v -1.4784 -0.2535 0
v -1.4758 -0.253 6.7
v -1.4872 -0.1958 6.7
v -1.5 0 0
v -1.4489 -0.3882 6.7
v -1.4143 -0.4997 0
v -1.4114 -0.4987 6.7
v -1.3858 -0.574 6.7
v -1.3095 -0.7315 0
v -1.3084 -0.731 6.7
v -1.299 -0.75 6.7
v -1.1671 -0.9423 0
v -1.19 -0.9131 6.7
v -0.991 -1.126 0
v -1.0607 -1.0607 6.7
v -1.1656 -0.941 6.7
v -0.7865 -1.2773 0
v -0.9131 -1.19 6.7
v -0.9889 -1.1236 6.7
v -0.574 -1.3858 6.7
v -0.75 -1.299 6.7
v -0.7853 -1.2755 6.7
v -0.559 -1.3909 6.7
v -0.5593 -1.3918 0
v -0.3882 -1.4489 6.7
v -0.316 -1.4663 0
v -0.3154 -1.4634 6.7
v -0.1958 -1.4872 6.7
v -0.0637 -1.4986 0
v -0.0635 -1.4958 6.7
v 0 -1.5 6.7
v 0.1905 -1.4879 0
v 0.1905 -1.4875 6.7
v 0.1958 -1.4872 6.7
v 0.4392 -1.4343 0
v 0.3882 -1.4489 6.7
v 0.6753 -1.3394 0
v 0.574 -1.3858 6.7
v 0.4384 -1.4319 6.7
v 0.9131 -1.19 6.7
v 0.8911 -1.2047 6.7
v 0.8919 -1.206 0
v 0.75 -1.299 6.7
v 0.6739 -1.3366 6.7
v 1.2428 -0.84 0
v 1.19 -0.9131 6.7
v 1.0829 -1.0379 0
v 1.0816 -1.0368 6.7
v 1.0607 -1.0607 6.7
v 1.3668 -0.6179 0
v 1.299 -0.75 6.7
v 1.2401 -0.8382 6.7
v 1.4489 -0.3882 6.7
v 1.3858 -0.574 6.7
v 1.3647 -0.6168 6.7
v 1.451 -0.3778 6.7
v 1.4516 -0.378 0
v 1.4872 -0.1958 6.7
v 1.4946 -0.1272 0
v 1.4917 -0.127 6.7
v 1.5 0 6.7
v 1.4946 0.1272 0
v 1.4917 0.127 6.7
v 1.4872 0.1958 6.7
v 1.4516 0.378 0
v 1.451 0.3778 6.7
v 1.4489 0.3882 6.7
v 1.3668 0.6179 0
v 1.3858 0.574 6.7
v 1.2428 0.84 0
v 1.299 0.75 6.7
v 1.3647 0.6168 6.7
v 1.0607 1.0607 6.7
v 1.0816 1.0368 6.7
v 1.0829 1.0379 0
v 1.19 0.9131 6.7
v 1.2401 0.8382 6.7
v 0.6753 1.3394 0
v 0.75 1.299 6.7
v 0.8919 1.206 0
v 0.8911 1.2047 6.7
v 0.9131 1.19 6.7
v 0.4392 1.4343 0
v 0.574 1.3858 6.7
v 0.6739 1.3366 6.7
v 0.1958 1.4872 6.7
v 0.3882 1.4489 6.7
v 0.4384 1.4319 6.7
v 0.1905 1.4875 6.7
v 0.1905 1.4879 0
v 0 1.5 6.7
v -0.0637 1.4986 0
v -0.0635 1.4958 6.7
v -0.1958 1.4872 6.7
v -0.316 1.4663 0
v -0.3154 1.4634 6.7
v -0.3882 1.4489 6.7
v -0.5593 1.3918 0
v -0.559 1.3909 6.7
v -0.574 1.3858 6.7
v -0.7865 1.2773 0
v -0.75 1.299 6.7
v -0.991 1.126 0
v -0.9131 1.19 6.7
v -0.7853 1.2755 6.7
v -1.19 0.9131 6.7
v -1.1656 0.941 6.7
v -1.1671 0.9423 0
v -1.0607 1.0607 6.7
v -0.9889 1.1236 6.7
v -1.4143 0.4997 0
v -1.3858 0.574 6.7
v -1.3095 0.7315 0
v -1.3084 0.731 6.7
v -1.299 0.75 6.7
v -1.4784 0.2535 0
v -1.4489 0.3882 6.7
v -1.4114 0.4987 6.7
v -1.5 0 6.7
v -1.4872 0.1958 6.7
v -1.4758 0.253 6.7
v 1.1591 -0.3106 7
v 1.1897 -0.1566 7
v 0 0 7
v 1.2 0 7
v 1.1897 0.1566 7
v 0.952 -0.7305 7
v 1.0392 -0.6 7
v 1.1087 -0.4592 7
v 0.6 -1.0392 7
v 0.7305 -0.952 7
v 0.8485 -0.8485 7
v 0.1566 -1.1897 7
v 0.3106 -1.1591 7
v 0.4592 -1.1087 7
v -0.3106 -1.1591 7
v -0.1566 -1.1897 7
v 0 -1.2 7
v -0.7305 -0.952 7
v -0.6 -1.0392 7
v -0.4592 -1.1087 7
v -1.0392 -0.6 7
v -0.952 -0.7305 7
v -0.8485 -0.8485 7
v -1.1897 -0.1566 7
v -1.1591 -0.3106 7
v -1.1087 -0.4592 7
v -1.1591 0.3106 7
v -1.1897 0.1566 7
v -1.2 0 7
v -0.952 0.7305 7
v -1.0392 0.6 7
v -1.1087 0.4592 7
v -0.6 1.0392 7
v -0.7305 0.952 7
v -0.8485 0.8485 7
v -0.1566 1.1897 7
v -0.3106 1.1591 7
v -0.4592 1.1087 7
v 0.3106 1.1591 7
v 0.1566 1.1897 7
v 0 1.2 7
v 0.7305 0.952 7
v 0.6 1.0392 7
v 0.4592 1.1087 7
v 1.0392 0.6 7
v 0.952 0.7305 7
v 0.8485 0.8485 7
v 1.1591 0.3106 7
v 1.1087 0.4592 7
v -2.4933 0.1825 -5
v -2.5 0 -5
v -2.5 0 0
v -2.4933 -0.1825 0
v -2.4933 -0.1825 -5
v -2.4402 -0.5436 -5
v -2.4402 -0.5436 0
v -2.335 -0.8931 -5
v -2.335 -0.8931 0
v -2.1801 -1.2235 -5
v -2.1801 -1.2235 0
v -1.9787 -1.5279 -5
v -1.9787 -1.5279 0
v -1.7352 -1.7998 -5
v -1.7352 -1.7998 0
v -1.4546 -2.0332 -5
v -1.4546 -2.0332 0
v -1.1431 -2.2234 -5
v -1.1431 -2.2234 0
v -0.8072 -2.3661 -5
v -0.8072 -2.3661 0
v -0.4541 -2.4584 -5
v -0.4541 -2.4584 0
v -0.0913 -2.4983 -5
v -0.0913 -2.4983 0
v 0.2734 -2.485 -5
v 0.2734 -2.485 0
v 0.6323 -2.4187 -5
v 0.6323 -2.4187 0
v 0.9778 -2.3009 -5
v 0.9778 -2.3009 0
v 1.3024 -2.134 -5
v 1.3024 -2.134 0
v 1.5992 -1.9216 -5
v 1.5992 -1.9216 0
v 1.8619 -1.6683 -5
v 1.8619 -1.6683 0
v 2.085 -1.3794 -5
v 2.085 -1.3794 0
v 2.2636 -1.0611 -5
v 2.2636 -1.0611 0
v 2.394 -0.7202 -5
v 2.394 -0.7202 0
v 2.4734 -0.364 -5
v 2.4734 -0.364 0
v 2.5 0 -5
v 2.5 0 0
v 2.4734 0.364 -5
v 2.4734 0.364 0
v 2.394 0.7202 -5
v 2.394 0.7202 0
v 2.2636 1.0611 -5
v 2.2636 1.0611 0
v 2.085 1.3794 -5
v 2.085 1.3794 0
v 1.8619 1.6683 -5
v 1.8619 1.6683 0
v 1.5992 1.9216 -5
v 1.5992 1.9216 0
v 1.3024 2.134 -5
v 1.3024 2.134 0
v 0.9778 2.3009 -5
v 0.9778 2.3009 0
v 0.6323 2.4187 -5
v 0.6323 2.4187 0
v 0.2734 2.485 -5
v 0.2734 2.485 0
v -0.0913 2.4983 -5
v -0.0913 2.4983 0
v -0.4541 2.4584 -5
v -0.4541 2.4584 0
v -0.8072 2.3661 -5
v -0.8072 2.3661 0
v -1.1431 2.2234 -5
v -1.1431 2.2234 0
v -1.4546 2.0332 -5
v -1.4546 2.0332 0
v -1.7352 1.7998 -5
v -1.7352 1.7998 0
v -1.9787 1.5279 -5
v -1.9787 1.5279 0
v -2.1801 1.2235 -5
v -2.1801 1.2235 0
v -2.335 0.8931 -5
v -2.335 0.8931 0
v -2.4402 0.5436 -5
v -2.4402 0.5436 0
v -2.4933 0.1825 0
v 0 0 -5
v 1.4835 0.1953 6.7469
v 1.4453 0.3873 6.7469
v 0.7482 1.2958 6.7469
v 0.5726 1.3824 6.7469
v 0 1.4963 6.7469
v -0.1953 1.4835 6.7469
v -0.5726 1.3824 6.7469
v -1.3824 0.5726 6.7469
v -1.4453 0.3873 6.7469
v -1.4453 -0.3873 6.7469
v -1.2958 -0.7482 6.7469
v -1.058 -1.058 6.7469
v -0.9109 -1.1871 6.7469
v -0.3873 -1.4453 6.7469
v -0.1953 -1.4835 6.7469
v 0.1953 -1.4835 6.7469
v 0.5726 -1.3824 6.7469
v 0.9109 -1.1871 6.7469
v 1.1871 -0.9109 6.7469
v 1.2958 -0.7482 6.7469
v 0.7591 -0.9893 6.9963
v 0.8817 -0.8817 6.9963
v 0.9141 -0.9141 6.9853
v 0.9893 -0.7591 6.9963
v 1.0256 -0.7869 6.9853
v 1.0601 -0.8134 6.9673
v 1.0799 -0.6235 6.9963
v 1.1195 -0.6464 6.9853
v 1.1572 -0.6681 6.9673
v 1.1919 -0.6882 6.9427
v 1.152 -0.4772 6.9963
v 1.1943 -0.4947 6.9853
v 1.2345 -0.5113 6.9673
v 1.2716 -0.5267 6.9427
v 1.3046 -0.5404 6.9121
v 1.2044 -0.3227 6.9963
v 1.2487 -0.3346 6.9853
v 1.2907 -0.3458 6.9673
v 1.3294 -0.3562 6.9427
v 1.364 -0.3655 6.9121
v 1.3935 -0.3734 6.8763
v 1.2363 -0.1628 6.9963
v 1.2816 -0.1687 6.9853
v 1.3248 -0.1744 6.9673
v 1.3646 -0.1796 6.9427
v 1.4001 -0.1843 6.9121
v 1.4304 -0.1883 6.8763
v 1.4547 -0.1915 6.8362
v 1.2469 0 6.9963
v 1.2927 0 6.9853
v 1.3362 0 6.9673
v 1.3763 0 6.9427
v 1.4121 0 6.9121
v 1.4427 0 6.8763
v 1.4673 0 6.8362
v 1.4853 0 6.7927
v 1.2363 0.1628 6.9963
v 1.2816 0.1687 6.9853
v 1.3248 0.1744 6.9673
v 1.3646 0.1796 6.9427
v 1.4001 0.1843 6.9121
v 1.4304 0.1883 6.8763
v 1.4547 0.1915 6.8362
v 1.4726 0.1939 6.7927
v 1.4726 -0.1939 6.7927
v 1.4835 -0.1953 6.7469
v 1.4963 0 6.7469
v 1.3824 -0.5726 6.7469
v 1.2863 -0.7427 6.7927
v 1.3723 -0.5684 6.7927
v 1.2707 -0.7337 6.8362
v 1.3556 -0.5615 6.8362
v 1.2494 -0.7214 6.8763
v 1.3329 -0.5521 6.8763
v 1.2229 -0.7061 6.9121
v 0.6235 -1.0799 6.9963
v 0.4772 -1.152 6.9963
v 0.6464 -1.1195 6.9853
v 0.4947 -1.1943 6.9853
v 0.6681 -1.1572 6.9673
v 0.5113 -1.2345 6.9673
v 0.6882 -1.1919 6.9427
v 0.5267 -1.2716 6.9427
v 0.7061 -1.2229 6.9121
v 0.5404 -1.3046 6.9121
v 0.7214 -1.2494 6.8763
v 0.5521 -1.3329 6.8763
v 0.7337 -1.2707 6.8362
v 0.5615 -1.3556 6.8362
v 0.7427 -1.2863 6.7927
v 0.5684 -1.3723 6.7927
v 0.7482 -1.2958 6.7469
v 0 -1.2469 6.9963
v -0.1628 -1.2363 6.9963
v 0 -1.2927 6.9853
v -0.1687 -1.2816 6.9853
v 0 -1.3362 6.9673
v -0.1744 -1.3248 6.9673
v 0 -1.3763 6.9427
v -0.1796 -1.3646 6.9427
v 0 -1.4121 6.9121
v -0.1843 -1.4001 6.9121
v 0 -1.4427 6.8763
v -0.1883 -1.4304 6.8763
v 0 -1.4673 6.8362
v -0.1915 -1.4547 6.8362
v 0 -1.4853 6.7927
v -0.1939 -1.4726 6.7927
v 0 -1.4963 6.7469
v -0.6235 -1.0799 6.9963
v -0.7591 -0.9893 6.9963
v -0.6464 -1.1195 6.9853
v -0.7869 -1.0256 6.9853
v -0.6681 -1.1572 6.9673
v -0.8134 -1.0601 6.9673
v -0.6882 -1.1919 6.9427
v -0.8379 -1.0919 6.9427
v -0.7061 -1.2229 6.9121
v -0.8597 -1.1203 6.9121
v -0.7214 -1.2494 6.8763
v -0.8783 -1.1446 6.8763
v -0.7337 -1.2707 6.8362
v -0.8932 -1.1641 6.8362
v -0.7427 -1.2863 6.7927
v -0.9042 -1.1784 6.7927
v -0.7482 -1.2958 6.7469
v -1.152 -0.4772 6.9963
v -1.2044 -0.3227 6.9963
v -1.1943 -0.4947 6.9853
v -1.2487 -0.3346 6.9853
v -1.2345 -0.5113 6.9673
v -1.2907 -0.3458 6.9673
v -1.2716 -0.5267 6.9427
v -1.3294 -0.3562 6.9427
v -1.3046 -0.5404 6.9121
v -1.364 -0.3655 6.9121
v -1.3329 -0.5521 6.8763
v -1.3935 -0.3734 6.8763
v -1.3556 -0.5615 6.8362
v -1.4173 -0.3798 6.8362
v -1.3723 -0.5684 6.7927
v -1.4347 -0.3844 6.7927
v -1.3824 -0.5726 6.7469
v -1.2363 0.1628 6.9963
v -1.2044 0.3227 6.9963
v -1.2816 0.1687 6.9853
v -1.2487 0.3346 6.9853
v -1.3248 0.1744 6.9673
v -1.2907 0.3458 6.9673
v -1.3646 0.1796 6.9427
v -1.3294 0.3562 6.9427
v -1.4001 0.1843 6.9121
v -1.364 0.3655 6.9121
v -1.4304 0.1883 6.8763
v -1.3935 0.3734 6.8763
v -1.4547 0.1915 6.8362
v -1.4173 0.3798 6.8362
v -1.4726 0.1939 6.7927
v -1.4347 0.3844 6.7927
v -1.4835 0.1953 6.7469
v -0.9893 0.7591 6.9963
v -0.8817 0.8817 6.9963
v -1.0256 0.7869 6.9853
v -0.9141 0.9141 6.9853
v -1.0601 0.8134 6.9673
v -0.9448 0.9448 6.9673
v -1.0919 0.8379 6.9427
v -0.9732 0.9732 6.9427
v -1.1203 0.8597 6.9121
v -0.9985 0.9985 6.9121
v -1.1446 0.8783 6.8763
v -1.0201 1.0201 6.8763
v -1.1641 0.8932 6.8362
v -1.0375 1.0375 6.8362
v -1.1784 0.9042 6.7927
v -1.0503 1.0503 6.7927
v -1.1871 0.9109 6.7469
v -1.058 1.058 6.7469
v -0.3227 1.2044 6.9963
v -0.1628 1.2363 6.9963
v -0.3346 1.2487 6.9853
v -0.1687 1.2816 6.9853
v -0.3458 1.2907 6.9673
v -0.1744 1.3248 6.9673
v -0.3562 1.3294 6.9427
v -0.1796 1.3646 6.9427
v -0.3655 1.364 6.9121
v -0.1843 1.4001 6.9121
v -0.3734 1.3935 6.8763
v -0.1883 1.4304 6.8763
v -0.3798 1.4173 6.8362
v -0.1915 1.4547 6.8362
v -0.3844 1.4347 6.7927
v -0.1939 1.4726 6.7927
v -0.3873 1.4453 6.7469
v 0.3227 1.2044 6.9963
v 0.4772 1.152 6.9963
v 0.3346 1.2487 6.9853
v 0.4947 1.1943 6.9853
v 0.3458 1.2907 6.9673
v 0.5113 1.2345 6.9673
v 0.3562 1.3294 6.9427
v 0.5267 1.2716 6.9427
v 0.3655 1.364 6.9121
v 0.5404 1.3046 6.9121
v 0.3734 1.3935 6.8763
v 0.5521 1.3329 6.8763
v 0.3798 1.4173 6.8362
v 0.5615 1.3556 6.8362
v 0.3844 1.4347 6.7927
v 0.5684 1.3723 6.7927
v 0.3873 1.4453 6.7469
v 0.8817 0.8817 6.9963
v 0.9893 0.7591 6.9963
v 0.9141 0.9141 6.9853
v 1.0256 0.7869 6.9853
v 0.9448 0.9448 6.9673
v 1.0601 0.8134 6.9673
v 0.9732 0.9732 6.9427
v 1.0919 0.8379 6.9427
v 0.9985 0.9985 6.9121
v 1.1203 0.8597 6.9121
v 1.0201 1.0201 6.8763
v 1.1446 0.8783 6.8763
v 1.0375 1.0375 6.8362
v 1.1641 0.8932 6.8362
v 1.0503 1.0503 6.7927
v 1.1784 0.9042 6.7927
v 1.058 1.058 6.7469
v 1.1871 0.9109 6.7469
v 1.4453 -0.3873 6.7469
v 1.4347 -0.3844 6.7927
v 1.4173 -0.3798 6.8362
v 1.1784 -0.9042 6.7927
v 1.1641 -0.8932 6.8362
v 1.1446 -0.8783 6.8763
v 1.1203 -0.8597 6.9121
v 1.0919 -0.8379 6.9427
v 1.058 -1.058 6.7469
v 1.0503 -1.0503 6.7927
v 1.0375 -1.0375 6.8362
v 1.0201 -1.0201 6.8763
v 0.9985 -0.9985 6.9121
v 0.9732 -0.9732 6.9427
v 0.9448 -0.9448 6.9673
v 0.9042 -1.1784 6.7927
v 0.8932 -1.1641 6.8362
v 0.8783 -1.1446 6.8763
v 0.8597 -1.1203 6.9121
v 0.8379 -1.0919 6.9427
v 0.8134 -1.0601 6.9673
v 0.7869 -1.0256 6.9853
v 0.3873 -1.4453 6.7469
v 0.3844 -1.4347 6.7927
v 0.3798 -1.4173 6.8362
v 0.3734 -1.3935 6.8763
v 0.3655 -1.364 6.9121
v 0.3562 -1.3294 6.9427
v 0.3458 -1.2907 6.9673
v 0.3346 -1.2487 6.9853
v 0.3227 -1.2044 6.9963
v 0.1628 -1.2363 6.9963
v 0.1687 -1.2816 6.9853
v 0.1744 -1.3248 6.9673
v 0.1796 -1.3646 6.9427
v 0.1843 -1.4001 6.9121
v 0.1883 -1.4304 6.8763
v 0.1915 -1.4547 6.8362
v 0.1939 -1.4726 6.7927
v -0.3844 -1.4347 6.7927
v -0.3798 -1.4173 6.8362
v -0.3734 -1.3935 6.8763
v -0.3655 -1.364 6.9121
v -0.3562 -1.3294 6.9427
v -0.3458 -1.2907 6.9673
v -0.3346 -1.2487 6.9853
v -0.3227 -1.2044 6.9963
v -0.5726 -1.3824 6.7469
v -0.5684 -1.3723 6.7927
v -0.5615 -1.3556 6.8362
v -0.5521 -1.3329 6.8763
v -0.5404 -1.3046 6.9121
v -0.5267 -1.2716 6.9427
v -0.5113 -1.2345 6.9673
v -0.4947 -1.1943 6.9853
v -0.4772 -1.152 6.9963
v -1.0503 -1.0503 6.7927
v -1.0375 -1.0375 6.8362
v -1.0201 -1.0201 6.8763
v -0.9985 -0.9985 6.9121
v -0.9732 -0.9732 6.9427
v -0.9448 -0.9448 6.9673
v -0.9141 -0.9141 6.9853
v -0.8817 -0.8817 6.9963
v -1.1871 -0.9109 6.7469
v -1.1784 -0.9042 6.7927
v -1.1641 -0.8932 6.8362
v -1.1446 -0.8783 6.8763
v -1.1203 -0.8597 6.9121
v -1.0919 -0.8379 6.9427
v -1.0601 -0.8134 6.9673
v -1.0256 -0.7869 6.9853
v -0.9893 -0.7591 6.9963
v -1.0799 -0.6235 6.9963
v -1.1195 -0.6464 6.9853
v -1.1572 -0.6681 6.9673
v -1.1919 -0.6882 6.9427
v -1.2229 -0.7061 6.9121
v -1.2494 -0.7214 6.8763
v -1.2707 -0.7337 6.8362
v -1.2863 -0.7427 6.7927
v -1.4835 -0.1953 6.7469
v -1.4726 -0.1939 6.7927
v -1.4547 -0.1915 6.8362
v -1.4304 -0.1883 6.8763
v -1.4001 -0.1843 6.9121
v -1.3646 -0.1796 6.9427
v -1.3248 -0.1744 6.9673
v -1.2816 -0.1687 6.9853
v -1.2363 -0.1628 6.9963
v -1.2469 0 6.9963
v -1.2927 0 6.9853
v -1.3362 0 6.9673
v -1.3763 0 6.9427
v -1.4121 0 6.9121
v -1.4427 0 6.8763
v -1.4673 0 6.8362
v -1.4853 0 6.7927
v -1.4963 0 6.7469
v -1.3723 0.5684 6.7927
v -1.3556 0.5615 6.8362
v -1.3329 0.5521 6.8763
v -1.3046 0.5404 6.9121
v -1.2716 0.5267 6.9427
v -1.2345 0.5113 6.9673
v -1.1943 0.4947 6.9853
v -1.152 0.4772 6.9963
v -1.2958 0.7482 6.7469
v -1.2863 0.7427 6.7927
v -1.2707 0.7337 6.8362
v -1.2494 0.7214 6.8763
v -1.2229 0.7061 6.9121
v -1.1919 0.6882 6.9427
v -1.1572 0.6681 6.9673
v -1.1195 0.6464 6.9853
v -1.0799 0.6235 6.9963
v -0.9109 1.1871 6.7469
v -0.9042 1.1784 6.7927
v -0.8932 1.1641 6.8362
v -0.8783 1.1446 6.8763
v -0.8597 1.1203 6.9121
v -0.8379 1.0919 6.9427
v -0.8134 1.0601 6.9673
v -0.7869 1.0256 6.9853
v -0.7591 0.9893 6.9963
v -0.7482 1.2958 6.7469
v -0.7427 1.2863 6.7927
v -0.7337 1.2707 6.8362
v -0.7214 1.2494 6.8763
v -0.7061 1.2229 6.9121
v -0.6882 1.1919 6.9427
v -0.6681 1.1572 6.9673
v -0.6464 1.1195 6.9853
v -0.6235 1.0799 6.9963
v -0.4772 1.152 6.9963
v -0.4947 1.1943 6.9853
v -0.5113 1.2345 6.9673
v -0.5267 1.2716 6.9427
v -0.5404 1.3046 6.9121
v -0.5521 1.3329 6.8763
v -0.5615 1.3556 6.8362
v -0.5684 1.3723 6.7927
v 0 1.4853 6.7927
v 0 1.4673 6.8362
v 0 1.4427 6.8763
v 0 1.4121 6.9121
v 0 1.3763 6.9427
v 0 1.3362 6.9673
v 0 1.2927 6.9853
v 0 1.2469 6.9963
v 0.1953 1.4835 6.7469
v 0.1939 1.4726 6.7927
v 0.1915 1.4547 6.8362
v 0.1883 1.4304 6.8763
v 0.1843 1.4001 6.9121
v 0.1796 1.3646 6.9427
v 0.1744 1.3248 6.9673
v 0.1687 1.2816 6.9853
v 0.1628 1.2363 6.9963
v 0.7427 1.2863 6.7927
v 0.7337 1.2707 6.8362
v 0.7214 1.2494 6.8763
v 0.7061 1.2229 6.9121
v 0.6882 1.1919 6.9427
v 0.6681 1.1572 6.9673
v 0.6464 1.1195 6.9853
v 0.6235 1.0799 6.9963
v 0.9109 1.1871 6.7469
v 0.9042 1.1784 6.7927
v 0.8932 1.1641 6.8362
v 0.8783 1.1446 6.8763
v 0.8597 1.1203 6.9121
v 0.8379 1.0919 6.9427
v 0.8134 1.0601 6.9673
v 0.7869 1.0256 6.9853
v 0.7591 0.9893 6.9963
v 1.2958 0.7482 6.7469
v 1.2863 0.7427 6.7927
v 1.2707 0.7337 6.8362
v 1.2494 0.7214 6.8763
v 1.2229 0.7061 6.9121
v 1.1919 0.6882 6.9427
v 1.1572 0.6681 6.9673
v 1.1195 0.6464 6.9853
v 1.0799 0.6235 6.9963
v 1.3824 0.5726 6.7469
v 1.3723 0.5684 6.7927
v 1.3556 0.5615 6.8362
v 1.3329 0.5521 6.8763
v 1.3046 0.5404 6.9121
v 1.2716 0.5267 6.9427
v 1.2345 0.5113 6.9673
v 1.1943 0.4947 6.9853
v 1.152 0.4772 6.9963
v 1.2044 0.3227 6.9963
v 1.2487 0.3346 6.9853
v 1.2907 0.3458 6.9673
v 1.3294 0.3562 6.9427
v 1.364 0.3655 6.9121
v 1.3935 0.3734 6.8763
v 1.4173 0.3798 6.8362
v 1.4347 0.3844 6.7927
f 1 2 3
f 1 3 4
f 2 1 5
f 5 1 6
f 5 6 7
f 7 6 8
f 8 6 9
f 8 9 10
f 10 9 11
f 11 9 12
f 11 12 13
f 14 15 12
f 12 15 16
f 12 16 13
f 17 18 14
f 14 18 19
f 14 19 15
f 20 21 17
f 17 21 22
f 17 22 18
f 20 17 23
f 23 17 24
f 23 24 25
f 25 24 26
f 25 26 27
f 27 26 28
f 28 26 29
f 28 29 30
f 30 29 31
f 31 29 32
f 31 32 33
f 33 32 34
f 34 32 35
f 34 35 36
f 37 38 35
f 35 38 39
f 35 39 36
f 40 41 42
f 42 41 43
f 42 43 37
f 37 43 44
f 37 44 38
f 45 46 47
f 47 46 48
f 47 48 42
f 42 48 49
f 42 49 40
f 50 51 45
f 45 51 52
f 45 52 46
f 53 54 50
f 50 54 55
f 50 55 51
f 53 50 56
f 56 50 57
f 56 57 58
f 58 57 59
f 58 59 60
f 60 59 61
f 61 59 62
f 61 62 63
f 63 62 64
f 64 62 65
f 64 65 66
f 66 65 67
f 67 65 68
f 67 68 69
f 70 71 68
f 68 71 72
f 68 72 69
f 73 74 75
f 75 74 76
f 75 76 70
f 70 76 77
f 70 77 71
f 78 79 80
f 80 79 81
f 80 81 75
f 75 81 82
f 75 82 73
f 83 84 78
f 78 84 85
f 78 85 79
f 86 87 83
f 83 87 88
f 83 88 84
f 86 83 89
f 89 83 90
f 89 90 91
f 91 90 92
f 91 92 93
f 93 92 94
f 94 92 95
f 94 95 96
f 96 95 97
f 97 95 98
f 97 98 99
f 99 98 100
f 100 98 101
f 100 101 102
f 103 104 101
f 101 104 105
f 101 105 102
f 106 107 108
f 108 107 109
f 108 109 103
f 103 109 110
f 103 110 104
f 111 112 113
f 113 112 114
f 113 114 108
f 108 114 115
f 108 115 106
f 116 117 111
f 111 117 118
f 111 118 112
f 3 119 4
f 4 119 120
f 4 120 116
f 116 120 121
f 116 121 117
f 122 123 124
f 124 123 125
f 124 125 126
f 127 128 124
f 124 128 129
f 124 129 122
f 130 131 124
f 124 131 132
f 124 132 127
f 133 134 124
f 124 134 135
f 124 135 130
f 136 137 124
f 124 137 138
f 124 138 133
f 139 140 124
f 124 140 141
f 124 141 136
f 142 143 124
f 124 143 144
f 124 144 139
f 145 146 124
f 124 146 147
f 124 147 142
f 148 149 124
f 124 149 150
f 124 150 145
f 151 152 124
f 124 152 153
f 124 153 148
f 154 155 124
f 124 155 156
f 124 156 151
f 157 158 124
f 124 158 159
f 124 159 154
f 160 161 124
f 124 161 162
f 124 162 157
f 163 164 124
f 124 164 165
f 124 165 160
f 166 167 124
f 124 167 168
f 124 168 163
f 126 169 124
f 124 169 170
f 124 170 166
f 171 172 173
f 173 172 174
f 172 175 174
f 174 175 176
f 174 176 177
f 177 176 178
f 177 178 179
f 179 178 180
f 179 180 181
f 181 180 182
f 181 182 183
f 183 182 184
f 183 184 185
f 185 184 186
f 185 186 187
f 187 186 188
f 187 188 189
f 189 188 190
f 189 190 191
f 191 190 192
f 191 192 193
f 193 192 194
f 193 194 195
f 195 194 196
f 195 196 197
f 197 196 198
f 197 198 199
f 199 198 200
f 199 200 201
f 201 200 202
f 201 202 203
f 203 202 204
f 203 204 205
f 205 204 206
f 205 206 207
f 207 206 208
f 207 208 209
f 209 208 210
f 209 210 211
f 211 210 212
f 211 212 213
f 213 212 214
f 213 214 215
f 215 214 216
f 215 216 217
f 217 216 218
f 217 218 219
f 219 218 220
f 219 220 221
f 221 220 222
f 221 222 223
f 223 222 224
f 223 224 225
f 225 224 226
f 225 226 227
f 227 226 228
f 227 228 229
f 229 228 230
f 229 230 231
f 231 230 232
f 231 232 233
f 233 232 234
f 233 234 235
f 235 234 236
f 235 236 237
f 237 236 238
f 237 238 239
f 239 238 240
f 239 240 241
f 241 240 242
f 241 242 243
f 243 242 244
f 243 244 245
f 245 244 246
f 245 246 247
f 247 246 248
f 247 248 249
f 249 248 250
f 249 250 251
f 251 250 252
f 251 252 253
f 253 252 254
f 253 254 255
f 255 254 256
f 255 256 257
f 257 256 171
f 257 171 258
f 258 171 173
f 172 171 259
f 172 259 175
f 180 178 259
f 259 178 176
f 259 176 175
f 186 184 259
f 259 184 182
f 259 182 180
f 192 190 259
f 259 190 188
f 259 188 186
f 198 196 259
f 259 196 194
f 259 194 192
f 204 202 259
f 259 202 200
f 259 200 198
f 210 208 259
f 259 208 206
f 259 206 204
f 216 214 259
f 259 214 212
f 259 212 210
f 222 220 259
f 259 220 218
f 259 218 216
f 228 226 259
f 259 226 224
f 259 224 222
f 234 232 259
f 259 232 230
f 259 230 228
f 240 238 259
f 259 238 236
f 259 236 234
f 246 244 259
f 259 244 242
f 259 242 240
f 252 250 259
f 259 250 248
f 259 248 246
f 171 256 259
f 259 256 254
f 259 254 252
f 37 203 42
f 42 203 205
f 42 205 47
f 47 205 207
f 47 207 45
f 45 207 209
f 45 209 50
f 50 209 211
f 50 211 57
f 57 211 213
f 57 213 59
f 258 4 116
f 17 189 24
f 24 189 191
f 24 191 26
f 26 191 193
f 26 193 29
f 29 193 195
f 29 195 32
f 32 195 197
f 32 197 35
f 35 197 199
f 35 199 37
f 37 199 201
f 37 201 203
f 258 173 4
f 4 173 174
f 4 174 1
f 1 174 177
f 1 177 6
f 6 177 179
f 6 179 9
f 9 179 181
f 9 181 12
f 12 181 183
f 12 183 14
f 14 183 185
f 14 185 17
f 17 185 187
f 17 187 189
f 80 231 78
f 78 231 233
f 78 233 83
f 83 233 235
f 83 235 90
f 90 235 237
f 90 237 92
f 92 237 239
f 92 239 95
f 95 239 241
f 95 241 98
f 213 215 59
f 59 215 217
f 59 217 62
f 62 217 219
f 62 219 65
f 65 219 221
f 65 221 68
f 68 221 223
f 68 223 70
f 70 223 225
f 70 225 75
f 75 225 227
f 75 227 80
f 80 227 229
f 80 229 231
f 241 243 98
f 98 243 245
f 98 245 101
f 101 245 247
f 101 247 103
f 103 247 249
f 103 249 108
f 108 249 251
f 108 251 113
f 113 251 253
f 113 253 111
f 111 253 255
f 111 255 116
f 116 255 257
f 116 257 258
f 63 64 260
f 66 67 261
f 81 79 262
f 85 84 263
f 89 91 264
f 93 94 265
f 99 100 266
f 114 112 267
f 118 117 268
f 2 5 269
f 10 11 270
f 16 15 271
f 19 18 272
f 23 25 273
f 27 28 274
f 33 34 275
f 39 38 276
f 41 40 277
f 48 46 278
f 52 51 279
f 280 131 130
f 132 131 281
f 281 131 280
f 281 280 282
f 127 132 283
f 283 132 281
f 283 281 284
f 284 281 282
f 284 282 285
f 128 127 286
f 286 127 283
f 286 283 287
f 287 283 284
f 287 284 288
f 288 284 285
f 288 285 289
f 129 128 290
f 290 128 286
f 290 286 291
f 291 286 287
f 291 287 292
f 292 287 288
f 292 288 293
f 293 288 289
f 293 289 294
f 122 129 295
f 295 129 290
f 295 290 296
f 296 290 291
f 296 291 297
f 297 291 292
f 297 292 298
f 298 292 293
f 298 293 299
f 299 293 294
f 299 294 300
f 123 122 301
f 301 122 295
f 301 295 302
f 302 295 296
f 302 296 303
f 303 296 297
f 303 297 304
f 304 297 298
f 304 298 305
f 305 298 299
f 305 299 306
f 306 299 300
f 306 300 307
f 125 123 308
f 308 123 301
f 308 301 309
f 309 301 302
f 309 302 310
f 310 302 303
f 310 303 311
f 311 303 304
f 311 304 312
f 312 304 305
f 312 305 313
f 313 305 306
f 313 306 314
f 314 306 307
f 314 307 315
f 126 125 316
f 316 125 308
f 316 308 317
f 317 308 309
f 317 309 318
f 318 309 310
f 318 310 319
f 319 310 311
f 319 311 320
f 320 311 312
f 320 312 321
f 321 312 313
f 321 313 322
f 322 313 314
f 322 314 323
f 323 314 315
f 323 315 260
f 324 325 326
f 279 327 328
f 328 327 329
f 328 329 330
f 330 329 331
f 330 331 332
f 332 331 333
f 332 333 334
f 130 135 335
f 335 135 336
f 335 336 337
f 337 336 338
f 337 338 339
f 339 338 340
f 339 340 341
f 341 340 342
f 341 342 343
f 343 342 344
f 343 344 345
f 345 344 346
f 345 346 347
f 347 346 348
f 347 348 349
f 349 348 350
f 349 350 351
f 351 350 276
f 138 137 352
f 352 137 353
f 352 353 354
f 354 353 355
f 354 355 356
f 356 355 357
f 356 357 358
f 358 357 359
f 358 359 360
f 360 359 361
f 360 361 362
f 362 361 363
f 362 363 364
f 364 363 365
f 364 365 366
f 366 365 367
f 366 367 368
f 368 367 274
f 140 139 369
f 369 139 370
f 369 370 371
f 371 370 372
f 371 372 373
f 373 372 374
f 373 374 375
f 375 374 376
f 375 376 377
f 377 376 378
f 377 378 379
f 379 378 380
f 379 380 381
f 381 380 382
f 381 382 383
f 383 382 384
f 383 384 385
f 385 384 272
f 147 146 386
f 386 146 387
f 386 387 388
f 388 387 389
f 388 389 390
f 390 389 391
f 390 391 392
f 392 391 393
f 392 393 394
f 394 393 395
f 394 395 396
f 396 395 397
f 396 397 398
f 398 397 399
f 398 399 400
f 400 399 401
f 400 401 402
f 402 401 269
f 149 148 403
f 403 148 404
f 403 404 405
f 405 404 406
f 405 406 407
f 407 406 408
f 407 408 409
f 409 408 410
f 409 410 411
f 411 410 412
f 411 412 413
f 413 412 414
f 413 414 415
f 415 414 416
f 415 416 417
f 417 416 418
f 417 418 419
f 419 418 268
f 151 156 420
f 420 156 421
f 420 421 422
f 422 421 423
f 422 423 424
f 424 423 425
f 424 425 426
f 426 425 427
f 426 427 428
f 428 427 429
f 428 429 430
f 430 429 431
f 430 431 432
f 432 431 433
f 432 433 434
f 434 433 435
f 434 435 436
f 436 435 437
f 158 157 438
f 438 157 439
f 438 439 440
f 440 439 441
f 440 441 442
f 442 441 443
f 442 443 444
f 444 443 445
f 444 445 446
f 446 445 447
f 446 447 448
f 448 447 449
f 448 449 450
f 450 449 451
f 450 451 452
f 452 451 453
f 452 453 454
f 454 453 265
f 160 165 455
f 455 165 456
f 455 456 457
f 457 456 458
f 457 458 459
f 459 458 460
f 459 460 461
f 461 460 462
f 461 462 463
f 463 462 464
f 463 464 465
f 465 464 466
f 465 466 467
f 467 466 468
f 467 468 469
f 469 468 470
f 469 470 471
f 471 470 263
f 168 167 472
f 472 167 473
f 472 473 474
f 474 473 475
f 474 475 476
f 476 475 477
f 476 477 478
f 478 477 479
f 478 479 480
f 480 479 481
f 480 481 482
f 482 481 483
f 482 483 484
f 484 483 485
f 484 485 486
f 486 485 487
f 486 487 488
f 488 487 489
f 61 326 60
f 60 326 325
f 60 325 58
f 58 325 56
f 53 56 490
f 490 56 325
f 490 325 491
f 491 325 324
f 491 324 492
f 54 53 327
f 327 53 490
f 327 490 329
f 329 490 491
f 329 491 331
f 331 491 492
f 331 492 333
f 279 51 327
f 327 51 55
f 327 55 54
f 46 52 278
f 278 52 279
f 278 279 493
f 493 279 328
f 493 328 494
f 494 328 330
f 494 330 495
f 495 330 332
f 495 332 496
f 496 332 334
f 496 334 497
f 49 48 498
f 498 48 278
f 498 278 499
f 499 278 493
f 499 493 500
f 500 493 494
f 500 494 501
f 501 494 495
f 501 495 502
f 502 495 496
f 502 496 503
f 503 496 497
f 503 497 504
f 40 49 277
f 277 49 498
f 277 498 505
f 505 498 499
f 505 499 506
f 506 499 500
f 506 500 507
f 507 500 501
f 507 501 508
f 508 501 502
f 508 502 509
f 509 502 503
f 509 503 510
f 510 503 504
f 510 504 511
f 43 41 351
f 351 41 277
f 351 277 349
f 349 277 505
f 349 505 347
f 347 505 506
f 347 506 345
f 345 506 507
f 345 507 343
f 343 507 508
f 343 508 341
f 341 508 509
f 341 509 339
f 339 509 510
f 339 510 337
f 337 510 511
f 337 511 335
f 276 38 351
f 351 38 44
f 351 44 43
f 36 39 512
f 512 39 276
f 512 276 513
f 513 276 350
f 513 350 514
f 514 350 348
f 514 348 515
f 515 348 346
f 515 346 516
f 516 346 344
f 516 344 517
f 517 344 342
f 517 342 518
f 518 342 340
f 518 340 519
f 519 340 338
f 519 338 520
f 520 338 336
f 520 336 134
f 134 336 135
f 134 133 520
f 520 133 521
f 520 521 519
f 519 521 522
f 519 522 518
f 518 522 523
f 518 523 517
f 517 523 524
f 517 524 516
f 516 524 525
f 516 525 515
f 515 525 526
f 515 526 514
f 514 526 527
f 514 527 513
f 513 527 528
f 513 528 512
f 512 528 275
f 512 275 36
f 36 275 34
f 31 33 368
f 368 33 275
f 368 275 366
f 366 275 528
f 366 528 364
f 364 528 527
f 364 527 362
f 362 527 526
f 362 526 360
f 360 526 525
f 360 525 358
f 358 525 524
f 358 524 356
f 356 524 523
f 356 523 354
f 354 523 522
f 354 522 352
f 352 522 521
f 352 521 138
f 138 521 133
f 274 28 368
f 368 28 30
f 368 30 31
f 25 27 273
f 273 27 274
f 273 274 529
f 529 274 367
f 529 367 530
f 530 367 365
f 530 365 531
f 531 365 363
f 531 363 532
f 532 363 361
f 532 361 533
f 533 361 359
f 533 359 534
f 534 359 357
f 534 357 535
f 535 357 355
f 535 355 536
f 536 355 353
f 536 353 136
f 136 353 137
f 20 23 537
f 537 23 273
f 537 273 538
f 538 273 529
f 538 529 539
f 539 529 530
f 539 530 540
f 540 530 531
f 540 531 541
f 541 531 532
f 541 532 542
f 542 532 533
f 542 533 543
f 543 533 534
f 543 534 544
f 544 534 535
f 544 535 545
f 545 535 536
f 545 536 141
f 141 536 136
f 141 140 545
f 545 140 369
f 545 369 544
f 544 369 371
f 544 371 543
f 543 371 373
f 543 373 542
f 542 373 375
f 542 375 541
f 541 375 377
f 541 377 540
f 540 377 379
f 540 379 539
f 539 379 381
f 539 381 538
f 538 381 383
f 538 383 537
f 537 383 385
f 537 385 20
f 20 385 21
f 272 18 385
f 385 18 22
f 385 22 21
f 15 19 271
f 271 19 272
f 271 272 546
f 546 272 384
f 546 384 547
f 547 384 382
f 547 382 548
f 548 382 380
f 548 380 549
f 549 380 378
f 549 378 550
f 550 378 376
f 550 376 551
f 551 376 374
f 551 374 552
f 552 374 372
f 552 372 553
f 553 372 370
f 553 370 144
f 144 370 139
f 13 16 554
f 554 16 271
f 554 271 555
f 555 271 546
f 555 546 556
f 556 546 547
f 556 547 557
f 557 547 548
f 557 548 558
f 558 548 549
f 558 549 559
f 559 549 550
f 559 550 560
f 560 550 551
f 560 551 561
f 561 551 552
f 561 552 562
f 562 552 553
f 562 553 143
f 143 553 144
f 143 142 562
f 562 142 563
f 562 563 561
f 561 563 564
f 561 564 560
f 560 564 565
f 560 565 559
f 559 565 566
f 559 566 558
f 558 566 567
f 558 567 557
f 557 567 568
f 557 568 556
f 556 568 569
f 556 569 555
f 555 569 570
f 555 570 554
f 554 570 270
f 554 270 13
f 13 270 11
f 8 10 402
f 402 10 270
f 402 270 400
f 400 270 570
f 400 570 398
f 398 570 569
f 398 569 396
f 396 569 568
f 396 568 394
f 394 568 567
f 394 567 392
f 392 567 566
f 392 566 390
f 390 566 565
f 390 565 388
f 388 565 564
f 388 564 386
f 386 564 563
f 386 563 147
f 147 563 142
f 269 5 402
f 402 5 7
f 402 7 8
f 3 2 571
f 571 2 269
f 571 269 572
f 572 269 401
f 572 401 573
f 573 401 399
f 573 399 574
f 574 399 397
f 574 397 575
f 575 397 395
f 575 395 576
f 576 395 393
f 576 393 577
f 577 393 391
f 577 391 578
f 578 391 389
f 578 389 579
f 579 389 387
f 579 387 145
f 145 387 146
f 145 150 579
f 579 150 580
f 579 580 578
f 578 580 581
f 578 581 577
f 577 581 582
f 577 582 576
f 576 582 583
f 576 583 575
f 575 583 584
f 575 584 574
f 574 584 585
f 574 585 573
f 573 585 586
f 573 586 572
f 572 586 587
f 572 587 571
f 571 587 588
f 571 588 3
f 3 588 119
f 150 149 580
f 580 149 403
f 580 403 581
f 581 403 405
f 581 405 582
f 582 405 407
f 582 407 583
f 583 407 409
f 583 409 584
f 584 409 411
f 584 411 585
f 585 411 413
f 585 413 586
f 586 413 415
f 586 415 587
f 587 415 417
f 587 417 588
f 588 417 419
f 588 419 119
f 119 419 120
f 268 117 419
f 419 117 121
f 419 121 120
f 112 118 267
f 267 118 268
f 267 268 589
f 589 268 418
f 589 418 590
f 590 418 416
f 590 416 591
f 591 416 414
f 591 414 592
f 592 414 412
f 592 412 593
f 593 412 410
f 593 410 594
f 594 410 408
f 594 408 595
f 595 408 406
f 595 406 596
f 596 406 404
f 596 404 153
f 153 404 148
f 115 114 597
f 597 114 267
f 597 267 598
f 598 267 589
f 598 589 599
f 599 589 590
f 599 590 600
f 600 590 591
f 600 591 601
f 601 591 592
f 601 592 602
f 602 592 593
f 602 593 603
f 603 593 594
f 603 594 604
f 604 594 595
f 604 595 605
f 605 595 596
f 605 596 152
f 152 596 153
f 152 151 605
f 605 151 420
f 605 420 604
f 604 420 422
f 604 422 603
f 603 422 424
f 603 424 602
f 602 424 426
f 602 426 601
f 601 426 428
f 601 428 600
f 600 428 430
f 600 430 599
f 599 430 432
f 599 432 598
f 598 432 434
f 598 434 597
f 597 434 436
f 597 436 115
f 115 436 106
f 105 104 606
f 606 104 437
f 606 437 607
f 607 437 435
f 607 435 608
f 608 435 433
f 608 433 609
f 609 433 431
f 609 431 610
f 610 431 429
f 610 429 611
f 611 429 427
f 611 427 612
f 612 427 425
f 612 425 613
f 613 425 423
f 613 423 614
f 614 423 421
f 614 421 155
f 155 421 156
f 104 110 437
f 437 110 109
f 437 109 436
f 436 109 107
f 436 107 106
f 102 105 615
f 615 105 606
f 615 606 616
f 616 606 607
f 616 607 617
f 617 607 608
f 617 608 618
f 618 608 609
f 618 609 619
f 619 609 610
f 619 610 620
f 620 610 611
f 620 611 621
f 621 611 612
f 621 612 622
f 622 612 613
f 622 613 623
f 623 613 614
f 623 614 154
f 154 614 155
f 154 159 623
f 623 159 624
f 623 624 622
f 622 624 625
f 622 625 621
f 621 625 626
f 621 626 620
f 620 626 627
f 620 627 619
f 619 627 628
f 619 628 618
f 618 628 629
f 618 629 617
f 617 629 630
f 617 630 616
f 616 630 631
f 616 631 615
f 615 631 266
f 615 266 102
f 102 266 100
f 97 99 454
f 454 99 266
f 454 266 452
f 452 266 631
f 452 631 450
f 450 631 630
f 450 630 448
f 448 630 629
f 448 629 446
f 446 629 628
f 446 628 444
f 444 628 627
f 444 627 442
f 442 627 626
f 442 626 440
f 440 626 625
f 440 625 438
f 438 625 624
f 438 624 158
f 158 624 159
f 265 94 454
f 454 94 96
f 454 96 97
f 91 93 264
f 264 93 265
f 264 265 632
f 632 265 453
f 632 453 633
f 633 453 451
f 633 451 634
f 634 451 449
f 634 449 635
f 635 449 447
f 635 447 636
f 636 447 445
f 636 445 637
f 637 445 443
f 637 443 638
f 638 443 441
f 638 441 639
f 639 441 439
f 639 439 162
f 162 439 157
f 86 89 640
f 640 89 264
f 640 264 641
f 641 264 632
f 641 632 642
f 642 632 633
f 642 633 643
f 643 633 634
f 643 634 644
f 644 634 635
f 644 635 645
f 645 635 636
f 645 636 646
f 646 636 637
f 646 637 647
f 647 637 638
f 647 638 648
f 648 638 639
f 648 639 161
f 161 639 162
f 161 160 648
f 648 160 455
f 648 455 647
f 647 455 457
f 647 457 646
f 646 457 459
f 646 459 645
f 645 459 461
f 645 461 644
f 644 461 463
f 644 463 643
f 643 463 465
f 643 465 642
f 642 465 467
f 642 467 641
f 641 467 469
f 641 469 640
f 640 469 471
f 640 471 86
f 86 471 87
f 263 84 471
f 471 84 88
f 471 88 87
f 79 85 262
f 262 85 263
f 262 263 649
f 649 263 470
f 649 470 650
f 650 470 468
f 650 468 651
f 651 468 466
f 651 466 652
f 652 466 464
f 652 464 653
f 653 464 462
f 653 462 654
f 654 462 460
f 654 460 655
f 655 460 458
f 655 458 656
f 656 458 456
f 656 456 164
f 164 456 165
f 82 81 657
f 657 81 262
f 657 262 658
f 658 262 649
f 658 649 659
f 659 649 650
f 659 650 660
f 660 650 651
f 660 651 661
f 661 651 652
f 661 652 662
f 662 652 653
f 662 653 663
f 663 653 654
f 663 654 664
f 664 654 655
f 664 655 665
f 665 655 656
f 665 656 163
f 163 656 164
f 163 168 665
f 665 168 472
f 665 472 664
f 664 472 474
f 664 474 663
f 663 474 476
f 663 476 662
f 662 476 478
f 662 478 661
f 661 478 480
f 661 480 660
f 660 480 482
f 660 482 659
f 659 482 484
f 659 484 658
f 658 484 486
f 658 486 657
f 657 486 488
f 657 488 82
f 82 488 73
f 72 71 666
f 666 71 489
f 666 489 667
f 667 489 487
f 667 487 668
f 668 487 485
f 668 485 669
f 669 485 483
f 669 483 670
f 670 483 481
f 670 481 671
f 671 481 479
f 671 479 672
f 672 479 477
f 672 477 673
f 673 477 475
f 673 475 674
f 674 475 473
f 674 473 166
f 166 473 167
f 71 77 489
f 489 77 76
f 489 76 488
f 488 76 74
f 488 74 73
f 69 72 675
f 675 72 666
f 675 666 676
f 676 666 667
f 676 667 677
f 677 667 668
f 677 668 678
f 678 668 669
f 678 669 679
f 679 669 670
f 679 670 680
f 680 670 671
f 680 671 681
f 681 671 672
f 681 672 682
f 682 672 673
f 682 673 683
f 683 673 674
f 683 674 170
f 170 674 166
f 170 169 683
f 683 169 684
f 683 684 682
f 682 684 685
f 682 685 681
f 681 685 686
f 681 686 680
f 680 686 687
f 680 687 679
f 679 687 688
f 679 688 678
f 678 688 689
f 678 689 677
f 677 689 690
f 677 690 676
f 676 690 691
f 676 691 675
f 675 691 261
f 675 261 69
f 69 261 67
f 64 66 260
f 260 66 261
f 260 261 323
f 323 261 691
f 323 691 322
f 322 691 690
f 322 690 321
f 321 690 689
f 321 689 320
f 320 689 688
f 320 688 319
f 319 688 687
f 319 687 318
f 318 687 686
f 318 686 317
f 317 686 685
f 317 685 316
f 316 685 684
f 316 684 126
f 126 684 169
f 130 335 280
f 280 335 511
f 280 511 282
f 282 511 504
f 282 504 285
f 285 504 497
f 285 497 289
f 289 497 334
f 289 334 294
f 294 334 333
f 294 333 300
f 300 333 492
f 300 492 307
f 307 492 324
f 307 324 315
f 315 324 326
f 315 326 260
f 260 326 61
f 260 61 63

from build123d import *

# Parameters (mm, degrees)
SKETCH1_R           = 1.5
BOSS_EXTRUDE1_DEPTH = 7
SKETCH2_R           = 2.5
BOSS_EXTRUDE2_DEPTH = 5
FILLET2_R           = 0.3


with BuildPart() as part:
    # Sketch1 → Boss-Extrude1 (new body)
    with BuildSketch(Plane.XY):
        Circle(SKETCH1_R)
    extrude(amount=BOSS_EXTRUDE1_DEPTH)

    # Sketch2 → Boss-Extrude2 (add)
    with BuildSketch(Plane(origin=(0, 0, 0), x_dir=(-1, 0, 0), z_dir=(0, 0, -1))):
        Circle(SKETCH2_R)
    extrude(amount=BOSS_EXTRUDE2_DEPTH)

    # Fillet2
    fillet2_edges = [part.edges().sort_by_distance(p)[0] for p in [
        (-1.5, 0, 7),
    ]]
    fillet(fillet2_edges, radius=FILLET2_R)


solid = part.part
